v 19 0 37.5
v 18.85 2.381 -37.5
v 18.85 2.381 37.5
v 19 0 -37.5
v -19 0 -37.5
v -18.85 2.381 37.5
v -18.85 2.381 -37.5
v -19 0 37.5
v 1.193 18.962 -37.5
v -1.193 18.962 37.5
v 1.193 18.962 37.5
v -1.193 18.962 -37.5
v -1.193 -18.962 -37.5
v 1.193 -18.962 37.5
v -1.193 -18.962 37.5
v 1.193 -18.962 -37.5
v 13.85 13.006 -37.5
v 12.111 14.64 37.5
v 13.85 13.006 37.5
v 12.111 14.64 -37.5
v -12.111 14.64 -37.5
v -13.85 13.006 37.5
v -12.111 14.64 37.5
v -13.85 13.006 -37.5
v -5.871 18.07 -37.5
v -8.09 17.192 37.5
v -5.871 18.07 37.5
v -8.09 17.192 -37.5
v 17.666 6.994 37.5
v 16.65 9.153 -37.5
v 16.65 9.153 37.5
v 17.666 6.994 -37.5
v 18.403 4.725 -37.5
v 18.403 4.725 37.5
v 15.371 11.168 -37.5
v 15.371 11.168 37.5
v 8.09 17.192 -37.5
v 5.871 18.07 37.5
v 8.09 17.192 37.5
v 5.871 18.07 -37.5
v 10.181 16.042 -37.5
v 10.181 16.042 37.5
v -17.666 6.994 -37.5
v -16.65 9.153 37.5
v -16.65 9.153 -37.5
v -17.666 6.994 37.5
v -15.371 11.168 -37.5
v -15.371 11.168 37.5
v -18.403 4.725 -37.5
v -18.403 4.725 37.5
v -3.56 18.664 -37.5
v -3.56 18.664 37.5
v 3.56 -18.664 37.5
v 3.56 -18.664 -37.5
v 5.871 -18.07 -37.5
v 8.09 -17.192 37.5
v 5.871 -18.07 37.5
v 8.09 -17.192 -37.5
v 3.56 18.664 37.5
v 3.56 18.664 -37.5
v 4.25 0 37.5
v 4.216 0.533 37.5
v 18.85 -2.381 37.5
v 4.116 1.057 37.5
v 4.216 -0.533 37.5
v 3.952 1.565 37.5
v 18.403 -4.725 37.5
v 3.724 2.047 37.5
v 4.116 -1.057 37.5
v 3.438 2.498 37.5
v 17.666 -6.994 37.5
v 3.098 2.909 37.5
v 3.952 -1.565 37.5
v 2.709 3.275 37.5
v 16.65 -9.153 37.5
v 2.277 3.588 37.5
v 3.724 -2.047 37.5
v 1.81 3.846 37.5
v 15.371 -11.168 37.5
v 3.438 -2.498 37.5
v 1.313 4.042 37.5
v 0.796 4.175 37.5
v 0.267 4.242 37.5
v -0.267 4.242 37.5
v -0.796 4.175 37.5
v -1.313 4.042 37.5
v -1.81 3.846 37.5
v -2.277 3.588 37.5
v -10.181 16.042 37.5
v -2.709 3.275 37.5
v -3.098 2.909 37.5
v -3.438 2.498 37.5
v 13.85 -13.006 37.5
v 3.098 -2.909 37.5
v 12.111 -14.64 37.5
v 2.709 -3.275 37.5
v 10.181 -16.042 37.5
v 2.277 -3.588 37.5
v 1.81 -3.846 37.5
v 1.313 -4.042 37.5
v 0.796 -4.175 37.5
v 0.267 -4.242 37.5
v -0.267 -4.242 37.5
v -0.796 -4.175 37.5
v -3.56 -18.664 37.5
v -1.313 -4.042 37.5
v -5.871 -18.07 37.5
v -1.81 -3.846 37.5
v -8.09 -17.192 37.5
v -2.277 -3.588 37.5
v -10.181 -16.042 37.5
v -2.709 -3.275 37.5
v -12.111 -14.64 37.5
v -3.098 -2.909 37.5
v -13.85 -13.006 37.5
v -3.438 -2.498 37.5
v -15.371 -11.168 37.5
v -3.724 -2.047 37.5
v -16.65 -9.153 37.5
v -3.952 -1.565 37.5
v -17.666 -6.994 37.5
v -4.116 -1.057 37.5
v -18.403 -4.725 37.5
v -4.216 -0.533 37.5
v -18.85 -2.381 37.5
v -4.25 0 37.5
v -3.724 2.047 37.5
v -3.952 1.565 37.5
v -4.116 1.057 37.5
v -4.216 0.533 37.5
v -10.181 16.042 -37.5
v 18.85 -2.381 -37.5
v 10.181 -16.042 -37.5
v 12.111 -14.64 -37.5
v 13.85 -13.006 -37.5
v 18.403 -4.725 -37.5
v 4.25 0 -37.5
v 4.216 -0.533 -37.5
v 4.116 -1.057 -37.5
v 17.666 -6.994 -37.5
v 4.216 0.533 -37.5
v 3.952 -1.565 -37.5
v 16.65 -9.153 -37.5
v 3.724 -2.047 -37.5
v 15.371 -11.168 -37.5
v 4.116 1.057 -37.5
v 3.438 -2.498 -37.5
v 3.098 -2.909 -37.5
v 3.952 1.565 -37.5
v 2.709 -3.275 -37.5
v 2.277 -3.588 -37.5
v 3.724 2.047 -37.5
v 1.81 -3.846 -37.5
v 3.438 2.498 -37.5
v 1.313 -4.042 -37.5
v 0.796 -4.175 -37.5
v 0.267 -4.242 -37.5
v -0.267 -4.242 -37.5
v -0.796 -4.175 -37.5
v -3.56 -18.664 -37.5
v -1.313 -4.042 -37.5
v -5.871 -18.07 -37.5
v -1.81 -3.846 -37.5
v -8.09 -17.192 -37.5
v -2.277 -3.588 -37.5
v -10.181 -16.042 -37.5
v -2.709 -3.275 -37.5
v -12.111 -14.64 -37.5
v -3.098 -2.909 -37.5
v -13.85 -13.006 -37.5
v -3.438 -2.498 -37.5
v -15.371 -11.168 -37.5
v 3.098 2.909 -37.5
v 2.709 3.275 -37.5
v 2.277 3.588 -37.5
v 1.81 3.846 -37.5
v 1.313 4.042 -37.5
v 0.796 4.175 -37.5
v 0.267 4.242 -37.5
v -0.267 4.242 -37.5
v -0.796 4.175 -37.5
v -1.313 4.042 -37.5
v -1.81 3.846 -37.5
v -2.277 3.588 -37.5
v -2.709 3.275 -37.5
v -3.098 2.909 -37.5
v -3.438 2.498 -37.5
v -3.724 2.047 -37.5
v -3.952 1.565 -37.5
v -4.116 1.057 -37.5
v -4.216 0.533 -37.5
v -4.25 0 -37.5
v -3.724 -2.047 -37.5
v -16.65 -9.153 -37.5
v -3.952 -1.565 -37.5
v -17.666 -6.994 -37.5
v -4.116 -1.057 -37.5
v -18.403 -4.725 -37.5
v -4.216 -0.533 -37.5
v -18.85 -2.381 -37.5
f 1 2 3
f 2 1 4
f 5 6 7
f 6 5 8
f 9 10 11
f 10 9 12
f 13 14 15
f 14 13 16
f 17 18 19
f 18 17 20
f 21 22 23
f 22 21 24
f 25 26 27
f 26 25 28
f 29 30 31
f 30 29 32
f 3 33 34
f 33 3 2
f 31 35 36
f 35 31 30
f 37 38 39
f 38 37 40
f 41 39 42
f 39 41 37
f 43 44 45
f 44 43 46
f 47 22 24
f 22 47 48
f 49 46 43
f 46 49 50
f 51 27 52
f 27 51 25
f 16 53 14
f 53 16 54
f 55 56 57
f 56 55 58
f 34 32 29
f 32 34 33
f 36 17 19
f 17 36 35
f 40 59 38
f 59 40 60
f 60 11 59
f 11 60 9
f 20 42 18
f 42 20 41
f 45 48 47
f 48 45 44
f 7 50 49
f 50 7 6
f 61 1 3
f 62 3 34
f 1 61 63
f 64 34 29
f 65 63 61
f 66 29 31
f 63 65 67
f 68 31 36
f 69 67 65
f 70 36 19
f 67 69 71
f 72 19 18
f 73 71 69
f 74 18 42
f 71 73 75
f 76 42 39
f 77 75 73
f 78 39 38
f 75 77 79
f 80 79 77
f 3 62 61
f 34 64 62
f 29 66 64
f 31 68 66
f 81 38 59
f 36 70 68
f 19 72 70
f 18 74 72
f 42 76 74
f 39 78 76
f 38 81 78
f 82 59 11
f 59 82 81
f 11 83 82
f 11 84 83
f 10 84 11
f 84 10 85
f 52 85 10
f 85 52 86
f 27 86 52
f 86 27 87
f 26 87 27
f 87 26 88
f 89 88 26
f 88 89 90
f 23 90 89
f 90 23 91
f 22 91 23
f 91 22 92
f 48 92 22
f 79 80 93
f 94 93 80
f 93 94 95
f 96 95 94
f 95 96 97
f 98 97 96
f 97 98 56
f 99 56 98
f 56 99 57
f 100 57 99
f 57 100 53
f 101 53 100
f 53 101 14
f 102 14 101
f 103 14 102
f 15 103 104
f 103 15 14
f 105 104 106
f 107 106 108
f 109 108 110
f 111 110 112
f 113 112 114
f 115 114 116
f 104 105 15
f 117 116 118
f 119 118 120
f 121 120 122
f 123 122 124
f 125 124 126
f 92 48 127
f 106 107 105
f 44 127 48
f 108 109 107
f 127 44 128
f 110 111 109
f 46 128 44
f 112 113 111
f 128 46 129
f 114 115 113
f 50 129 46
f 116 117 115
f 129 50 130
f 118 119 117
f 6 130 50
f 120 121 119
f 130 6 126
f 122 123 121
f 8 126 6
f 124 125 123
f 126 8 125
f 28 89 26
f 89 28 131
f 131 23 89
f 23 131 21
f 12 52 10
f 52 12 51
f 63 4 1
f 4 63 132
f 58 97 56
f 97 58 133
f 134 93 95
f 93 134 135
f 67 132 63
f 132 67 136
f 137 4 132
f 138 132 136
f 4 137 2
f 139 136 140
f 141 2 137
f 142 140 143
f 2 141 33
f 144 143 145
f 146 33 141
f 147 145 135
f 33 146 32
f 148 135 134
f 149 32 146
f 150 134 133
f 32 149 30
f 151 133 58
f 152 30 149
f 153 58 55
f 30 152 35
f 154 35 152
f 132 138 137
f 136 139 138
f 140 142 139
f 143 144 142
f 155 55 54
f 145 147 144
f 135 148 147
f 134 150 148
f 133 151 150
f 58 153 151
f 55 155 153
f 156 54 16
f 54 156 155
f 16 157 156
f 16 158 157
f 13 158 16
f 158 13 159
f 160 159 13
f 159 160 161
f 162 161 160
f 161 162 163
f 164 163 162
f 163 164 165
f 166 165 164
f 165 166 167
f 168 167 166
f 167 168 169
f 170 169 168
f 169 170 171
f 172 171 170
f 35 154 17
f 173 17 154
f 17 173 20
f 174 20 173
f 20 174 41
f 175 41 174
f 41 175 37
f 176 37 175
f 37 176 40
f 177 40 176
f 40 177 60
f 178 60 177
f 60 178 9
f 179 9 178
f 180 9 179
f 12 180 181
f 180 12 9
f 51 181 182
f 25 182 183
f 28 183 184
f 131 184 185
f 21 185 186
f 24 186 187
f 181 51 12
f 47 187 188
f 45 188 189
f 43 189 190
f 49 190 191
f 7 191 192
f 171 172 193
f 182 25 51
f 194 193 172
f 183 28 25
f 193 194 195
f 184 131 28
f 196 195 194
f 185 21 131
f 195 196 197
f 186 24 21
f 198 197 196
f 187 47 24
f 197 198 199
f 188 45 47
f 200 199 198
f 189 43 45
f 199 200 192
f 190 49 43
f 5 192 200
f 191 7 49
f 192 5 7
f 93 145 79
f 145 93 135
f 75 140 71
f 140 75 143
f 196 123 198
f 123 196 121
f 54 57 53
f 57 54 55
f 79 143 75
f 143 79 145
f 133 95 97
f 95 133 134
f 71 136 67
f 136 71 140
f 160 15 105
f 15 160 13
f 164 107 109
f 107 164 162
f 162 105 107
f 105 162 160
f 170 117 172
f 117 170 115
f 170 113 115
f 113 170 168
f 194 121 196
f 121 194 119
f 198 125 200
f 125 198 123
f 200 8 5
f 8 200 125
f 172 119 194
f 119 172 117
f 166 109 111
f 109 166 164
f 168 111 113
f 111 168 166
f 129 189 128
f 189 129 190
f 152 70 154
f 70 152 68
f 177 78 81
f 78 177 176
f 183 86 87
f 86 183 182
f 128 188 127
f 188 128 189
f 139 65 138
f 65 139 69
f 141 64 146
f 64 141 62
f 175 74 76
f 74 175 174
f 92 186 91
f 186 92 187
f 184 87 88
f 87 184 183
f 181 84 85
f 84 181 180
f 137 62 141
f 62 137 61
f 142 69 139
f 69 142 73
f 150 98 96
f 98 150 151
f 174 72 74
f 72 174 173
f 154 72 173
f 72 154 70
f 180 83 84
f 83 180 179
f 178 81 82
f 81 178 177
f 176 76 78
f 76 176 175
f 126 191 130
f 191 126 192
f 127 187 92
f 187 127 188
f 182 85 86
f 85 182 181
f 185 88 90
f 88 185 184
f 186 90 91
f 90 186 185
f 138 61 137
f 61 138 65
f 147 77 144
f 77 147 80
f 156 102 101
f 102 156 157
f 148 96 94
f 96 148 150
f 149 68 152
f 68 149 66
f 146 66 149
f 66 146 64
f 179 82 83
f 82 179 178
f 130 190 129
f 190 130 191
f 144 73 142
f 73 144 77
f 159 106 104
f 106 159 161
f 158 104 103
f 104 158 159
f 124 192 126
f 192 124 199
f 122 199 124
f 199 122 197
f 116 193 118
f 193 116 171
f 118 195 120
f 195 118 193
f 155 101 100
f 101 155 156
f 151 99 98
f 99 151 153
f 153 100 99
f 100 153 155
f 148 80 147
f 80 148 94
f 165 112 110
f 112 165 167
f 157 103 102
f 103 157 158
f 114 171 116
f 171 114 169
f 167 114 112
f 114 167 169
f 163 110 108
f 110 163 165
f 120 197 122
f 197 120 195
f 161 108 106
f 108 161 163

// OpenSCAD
$fn = 50;


difference() {
	union() {
		translate(v = [0, 0, -37.5000000000]) {
			cylinder(h = 75, r = 19.0000000000);
		}
	}
	union() {
		translate(v = [0, 0, -100.0000000000]) {
			cylinder(h = 200, r = 4.2500000000);
		}
	}
}
